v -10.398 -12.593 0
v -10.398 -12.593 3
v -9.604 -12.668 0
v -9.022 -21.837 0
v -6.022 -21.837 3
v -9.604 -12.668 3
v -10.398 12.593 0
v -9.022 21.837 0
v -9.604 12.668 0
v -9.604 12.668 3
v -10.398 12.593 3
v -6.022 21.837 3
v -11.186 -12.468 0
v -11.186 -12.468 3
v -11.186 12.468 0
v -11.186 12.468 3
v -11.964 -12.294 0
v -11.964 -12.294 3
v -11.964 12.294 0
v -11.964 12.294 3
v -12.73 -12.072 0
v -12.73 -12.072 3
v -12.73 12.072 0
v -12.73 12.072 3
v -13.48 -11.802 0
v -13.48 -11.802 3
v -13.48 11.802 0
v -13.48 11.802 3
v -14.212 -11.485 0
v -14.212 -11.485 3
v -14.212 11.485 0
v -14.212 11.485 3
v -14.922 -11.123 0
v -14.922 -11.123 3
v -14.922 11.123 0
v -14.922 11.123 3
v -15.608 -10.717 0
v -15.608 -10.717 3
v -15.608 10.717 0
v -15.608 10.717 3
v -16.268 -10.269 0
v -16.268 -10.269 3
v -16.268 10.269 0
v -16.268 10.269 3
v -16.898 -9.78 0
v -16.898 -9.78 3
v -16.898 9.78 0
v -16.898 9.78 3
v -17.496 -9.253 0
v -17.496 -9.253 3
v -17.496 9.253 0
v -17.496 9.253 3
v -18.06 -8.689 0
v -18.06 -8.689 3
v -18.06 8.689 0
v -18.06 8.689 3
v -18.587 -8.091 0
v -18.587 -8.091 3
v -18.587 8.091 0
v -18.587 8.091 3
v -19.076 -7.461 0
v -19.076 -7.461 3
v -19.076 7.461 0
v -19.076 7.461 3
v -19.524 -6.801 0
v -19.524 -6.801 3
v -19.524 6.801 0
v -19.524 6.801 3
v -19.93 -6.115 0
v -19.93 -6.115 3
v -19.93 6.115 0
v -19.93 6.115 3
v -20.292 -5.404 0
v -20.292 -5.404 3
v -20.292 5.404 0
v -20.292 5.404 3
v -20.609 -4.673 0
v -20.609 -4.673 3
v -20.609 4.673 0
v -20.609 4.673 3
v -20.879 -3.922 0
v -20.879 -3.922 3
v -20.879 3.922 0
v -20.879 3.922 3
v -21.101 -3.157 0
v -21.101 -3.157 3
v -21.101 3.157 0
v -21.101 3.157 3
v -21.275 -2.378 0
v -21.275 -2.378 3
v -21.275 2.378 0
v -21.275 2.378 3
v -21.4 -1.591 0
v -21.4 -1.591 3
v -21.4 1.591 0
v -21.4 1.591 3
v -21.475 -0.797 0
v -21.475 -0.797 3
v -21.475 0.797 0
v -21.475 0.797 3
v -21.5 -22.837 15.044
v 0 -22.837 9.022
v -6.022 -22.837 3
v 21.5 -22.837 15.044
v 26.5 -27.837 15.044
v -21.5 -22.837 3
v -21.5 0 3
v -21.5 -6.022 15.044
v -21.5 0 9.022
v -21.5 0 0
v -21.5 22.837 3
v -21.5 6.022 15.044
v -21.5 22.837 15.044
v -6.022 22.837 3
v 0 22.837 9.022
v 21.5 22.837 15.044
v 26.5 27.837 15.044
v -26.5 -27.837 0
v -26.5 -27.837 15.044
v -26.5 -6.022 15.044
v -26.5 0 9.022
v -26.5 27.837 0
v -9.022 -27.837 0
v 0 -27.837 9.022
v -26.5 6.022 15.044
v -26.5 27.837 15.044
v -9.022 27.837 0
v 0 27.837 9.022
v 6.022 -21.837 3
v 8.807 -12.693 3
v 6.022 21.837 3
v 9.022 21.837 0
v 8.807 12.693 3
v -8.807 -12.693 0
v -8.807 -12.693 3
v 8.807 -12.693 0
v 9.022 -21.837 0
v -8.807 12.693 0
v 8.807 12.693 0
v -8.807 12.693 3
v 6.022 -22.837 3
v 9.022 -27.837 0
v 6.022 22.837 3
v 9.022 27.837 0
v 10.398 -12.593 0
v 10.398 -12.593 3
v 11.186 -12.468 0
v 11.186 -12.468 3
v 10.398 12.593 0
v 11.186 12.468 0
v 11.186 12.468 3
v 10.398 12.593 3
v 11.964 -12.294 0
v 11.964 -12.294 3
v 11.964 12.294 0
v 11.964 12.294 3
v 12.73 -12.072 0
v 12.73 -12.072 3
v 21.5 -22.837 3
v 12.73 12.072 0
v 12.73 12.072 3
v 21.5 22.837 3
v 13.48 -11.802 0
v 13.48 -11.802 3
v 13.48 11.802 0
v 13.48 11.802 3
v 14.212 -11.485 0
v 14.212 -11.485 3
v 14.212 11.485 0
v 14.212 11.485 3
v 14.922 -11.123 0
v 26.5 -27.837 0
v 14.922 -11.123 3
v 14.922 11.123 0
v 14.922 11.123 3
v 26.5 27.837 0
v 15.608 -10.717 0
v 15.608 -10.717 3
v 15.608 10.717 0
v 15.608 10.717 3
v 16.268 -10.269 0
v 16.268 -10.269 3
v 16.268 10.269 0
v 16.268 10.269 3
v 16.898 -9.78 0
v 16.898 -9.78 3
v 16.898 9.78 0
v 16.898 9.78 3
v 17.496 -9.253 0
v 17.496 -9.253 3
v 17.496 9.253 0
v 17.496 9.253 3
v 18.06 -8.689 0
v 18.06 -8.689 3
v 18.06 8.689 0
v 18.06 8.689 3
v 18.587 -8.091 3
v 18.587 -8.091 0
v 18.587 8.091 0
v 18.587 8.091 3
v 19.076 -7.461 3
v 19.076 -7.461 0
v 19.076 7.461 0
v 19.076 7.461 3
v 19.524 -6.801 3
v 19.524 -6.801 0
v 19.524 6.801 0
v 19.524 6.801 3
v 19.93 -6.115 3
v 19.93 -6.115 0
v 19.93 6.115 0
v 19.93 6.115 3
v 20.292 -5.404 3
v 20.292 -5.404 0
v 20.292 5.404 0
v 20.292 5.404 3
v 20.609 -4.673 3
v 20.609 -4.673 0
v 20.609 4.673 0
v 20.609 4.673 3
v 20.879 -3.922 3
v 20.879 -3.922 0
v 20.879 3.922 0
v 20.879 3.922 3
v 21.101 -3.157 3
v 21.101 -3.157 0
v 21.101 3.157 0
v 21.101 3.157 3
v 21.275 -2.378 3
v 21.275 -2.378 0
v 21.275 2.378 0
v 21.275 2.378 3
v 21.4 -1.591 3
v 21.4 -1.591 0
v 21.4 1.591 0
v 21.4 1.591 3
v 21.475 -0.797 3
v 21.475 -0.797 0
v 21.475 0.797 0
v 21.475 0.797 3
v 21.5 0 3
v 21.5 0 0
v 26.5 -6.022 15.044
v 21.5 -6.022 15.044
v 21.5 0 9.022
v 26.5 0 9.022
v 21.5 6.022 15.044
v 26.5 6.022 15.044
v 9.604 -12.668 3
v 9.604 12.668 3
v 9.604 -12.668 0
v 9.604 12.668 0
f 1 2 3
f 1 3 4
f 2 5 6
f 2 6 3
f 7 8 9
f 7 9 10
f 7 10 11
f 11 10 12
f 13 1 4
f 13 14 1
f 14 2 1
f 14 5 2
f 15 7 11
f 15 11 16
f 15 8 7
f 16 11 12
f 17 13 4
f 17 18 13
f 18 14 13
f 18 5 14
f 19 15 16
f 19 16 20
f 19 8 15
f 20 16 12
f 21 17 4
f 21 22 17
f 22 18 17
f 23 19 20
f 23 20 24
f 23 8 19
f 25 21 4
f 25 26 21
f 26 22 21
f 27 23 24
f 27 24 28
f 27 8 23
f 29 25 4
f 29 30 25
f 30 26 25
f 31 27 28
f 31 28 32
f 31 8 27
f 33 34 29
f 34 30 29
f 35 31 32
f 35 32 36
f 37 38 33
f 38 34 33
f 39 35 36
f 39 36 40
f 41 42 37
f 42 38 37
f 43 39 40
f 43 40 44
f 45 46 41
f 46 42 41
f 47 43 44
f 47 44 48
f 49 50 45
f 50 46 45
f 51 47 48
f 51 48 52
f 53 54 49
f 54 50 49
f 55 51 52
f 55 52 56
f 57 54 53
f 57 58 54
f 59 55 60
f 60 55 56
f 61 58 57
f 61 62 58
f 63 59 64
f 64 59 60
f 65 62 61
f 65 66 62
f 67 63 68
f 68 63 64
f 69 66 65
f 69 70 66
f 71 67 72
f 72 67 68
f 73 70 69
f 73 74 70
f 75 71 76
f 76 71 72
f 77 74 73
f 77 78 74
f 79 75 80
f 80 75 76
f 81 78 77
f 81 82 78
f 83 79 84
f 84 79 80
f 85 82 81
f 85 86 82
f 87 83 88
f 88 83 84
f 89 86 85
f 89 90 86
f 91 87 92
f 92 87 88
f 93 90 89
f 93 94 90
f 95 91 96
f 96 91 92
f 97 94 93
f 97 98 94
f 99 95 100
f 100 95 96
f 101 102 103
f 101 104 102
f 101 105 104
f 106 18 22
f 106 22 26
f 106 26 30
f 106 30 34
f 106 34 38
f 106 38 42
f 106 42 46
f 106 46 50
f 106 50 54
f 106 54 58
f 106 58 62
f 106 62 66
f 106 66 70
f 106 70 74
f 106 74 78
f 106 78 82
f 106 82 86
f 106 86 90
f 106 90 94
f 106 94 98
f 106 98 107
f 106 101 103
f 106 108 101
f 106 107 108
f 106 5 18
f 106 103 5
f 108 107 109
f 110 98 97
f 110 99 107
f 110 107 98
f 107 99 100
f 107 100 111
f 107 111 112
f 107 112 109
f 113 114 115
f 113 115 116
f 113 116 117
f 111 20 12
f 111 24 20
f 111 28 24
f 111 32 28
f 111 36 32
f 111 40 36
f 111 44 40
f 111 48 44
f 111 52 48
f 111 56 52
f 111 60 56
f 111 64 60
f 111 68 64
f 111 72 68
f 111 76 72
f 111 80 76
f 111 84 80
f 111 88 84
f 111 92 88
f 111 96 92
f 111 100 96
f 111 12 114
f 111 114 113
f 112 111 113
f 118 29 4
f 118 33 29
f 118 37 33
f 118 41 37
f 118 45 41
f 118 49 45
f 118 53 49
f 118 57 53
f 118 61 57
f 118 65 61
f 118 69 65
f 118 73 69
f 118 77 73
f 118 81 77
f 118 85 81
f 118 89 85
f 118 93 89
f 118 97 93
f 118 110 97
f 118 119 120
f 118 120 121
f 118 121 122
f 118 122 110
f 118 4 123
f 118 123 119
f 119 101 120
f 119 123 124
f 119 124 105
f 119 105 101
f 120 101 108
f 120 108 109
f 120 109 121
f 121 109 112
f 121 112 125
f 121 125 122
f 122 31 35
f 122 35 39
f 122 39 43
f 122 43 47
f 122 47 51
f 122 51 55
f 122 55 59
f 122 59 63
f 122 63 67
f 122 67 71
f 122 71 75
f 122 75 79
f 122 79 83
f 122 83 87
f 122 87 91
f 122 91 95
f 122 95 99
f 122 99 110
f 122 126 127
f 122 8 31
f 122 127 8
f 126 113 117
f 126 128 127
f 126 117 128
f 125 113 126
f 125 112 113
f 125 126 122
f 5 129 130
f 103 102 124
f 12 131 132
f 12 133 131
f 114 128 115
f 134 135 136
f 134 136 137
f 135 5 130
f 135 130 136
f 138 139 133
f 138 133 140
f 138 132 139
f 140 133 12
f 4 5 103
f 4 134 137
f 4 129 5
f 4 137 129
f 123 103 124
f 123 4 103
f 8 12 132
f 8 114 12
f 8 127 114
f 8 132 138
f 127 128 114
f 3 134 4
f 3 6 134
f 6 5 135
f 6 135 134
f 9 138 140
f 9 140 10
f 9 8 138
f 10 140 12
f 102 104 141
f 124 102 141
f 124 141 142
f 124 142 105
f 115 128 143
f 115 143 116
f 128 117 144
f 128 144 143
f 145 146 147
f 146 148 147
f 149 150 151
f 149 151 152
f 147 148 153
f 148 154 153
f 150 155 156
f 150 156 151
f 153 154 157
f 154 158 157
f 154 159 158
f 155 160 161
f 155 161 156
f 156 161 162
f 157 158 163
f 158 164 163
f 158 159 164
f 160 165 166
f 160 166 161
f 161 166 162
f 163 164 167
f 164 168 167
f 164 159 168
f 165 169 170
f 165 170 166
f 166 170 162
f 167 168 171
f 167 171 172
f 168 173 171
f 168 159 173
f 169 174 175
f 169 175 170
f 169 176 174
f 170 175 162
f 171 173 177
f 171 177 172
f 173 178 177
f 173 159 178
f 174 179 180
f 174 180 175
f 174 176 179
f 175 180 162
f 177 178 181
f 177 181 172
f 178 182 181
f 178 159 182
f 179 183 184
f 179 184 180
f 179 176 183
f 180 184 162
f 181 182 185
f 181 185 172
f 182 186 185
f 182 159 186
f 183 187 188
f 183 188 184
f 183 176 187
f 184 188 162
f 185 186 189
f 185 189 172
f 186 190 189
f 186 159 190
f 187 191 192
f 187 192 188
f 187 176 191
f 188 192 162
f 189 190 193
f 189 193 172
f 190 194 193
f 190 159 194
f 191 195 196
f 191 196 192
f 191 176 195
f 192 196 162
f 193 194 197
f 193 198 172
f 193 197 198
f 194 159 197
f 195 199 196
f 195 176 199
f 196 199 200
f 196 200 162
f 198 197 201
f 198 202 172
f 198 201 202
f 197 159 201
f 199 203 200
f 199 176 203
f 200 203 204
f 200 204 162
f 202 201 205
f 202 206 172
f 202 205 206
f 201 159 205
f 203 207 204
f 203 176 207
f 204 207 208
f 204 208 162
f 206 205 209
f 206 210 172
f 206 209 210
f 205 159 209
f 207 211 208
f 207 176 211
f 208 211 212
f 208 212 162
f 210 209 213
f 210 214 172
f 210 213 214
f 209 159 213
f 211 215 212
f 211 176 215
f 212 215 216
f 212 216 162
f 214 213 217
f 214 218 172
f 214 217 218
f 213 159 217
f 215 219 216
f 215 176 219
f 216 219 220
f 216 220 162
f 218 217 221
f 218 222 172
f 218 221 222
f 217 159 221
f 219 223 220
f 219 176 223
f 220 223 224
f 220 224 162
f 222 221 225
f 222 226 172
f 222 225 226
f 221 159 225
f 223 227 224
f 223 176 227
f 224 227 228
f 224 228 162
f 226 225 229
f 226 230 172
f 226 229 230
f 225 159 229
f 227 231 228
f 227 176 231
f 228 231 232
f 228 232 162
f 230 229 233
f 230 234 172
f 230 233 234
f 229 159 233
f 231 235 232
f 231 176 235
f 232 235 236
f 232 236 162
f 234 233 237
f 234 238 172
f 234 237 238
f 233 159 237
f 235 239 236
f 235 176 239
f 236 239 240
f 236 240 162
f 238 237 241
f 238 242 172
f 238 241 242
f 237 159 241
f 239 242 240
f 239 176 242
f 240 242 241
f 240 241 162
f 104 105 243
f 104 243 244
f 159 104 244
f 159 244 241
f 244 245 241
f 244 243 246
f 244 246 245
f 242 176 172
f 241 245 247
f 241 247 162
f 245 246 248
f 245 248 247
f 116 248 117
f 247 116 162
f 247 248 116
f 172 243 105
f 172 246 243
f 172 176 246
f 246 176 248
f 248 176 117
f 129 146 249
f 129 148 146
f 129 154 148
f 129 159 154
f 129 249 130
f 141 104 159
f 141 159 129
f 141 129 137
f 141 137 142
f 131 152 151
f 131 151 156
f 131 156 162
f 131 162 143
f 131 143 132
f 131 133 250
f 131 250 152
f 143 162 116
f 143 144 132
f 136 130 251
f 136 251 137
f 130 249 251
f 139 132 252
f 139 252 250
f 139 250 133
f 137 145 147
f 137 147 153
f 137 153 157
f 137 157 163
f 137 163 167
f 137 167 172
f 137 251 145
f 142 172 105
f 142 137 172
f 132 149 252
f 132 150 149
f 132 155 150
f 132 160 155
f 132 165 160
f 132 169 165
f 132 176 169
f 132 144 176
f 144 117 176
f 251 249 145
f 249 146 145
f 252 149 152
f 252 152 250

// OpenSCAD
include <../parameters.scad>

draft=true;

//kloub stredná časť
module 888_1022(draft) {
    a=60;
    b=14;

    hole_r=(rotor_head_bearing_db/2*1/cos(rotor_head_roll_stop));

    inner_x=rotor_head_kardan_inner_x;
    inner_y=rotor_head_kardan_inner_y;
    plate_thickness=rotor_head_plate_thickness;
    brit_width=rotor_head_brit_width;
    wall_height=rotor_head_wall_height;
    kardan_clearance=rotor_head_cardan_clearance;
    
    outer_x = inner_x + 2*brit_width;
    outer_y = inner_y + 2*brit_width;
    outer_height = wall_height + plate_thickness ;
    
    difference(){     
        translate ([0,0,outer_height/2]) {
            cube([outer_x,outer_y,outer_height],center = true);
            }
        translate([0,0,wall_height + plate_thickness]){
            cube([inner_x,inner_y,wall_height*2],center = true);
            }
        hull() {
            translate([-(inner_x/2 - hole_r),0,-outer_height]) {
                cylinder (h=outer_height*4, r=hole_r,$fn = 100);
                }
            translate([inner_x/2 - hole_r,0,-outer_height]) {
                cylinder (h=outer_height*4, r=hole_r,$fn = 100);
                }
            }
        translate([0,0,(a/ 2 * sqrt(2) ) + plate_thickness+wall_height/2]) {
                rotate ([45,0,0]) {
                    cube([2*inner_x + 2 * brit_width, a,a],center=true);
                    }
                }
        translate([0,-b/2-inner_y/2+kardan_clearance,-(b * sqrt(2) / 2) + plate_thickness+wall_height/2]){
            rotate ([0,45,0]){
                cube(b,center=true);
                }
            }
        translate([0,b/2+inner_y/2-kardan_clearance,-(b * sqrt(2) / 2) + plate_thickness+wall_height/2]){
            rotate ([0,45,0]){
                cube(b,center=true);
                }
            }           
        }
    }

888_1022(draft);
